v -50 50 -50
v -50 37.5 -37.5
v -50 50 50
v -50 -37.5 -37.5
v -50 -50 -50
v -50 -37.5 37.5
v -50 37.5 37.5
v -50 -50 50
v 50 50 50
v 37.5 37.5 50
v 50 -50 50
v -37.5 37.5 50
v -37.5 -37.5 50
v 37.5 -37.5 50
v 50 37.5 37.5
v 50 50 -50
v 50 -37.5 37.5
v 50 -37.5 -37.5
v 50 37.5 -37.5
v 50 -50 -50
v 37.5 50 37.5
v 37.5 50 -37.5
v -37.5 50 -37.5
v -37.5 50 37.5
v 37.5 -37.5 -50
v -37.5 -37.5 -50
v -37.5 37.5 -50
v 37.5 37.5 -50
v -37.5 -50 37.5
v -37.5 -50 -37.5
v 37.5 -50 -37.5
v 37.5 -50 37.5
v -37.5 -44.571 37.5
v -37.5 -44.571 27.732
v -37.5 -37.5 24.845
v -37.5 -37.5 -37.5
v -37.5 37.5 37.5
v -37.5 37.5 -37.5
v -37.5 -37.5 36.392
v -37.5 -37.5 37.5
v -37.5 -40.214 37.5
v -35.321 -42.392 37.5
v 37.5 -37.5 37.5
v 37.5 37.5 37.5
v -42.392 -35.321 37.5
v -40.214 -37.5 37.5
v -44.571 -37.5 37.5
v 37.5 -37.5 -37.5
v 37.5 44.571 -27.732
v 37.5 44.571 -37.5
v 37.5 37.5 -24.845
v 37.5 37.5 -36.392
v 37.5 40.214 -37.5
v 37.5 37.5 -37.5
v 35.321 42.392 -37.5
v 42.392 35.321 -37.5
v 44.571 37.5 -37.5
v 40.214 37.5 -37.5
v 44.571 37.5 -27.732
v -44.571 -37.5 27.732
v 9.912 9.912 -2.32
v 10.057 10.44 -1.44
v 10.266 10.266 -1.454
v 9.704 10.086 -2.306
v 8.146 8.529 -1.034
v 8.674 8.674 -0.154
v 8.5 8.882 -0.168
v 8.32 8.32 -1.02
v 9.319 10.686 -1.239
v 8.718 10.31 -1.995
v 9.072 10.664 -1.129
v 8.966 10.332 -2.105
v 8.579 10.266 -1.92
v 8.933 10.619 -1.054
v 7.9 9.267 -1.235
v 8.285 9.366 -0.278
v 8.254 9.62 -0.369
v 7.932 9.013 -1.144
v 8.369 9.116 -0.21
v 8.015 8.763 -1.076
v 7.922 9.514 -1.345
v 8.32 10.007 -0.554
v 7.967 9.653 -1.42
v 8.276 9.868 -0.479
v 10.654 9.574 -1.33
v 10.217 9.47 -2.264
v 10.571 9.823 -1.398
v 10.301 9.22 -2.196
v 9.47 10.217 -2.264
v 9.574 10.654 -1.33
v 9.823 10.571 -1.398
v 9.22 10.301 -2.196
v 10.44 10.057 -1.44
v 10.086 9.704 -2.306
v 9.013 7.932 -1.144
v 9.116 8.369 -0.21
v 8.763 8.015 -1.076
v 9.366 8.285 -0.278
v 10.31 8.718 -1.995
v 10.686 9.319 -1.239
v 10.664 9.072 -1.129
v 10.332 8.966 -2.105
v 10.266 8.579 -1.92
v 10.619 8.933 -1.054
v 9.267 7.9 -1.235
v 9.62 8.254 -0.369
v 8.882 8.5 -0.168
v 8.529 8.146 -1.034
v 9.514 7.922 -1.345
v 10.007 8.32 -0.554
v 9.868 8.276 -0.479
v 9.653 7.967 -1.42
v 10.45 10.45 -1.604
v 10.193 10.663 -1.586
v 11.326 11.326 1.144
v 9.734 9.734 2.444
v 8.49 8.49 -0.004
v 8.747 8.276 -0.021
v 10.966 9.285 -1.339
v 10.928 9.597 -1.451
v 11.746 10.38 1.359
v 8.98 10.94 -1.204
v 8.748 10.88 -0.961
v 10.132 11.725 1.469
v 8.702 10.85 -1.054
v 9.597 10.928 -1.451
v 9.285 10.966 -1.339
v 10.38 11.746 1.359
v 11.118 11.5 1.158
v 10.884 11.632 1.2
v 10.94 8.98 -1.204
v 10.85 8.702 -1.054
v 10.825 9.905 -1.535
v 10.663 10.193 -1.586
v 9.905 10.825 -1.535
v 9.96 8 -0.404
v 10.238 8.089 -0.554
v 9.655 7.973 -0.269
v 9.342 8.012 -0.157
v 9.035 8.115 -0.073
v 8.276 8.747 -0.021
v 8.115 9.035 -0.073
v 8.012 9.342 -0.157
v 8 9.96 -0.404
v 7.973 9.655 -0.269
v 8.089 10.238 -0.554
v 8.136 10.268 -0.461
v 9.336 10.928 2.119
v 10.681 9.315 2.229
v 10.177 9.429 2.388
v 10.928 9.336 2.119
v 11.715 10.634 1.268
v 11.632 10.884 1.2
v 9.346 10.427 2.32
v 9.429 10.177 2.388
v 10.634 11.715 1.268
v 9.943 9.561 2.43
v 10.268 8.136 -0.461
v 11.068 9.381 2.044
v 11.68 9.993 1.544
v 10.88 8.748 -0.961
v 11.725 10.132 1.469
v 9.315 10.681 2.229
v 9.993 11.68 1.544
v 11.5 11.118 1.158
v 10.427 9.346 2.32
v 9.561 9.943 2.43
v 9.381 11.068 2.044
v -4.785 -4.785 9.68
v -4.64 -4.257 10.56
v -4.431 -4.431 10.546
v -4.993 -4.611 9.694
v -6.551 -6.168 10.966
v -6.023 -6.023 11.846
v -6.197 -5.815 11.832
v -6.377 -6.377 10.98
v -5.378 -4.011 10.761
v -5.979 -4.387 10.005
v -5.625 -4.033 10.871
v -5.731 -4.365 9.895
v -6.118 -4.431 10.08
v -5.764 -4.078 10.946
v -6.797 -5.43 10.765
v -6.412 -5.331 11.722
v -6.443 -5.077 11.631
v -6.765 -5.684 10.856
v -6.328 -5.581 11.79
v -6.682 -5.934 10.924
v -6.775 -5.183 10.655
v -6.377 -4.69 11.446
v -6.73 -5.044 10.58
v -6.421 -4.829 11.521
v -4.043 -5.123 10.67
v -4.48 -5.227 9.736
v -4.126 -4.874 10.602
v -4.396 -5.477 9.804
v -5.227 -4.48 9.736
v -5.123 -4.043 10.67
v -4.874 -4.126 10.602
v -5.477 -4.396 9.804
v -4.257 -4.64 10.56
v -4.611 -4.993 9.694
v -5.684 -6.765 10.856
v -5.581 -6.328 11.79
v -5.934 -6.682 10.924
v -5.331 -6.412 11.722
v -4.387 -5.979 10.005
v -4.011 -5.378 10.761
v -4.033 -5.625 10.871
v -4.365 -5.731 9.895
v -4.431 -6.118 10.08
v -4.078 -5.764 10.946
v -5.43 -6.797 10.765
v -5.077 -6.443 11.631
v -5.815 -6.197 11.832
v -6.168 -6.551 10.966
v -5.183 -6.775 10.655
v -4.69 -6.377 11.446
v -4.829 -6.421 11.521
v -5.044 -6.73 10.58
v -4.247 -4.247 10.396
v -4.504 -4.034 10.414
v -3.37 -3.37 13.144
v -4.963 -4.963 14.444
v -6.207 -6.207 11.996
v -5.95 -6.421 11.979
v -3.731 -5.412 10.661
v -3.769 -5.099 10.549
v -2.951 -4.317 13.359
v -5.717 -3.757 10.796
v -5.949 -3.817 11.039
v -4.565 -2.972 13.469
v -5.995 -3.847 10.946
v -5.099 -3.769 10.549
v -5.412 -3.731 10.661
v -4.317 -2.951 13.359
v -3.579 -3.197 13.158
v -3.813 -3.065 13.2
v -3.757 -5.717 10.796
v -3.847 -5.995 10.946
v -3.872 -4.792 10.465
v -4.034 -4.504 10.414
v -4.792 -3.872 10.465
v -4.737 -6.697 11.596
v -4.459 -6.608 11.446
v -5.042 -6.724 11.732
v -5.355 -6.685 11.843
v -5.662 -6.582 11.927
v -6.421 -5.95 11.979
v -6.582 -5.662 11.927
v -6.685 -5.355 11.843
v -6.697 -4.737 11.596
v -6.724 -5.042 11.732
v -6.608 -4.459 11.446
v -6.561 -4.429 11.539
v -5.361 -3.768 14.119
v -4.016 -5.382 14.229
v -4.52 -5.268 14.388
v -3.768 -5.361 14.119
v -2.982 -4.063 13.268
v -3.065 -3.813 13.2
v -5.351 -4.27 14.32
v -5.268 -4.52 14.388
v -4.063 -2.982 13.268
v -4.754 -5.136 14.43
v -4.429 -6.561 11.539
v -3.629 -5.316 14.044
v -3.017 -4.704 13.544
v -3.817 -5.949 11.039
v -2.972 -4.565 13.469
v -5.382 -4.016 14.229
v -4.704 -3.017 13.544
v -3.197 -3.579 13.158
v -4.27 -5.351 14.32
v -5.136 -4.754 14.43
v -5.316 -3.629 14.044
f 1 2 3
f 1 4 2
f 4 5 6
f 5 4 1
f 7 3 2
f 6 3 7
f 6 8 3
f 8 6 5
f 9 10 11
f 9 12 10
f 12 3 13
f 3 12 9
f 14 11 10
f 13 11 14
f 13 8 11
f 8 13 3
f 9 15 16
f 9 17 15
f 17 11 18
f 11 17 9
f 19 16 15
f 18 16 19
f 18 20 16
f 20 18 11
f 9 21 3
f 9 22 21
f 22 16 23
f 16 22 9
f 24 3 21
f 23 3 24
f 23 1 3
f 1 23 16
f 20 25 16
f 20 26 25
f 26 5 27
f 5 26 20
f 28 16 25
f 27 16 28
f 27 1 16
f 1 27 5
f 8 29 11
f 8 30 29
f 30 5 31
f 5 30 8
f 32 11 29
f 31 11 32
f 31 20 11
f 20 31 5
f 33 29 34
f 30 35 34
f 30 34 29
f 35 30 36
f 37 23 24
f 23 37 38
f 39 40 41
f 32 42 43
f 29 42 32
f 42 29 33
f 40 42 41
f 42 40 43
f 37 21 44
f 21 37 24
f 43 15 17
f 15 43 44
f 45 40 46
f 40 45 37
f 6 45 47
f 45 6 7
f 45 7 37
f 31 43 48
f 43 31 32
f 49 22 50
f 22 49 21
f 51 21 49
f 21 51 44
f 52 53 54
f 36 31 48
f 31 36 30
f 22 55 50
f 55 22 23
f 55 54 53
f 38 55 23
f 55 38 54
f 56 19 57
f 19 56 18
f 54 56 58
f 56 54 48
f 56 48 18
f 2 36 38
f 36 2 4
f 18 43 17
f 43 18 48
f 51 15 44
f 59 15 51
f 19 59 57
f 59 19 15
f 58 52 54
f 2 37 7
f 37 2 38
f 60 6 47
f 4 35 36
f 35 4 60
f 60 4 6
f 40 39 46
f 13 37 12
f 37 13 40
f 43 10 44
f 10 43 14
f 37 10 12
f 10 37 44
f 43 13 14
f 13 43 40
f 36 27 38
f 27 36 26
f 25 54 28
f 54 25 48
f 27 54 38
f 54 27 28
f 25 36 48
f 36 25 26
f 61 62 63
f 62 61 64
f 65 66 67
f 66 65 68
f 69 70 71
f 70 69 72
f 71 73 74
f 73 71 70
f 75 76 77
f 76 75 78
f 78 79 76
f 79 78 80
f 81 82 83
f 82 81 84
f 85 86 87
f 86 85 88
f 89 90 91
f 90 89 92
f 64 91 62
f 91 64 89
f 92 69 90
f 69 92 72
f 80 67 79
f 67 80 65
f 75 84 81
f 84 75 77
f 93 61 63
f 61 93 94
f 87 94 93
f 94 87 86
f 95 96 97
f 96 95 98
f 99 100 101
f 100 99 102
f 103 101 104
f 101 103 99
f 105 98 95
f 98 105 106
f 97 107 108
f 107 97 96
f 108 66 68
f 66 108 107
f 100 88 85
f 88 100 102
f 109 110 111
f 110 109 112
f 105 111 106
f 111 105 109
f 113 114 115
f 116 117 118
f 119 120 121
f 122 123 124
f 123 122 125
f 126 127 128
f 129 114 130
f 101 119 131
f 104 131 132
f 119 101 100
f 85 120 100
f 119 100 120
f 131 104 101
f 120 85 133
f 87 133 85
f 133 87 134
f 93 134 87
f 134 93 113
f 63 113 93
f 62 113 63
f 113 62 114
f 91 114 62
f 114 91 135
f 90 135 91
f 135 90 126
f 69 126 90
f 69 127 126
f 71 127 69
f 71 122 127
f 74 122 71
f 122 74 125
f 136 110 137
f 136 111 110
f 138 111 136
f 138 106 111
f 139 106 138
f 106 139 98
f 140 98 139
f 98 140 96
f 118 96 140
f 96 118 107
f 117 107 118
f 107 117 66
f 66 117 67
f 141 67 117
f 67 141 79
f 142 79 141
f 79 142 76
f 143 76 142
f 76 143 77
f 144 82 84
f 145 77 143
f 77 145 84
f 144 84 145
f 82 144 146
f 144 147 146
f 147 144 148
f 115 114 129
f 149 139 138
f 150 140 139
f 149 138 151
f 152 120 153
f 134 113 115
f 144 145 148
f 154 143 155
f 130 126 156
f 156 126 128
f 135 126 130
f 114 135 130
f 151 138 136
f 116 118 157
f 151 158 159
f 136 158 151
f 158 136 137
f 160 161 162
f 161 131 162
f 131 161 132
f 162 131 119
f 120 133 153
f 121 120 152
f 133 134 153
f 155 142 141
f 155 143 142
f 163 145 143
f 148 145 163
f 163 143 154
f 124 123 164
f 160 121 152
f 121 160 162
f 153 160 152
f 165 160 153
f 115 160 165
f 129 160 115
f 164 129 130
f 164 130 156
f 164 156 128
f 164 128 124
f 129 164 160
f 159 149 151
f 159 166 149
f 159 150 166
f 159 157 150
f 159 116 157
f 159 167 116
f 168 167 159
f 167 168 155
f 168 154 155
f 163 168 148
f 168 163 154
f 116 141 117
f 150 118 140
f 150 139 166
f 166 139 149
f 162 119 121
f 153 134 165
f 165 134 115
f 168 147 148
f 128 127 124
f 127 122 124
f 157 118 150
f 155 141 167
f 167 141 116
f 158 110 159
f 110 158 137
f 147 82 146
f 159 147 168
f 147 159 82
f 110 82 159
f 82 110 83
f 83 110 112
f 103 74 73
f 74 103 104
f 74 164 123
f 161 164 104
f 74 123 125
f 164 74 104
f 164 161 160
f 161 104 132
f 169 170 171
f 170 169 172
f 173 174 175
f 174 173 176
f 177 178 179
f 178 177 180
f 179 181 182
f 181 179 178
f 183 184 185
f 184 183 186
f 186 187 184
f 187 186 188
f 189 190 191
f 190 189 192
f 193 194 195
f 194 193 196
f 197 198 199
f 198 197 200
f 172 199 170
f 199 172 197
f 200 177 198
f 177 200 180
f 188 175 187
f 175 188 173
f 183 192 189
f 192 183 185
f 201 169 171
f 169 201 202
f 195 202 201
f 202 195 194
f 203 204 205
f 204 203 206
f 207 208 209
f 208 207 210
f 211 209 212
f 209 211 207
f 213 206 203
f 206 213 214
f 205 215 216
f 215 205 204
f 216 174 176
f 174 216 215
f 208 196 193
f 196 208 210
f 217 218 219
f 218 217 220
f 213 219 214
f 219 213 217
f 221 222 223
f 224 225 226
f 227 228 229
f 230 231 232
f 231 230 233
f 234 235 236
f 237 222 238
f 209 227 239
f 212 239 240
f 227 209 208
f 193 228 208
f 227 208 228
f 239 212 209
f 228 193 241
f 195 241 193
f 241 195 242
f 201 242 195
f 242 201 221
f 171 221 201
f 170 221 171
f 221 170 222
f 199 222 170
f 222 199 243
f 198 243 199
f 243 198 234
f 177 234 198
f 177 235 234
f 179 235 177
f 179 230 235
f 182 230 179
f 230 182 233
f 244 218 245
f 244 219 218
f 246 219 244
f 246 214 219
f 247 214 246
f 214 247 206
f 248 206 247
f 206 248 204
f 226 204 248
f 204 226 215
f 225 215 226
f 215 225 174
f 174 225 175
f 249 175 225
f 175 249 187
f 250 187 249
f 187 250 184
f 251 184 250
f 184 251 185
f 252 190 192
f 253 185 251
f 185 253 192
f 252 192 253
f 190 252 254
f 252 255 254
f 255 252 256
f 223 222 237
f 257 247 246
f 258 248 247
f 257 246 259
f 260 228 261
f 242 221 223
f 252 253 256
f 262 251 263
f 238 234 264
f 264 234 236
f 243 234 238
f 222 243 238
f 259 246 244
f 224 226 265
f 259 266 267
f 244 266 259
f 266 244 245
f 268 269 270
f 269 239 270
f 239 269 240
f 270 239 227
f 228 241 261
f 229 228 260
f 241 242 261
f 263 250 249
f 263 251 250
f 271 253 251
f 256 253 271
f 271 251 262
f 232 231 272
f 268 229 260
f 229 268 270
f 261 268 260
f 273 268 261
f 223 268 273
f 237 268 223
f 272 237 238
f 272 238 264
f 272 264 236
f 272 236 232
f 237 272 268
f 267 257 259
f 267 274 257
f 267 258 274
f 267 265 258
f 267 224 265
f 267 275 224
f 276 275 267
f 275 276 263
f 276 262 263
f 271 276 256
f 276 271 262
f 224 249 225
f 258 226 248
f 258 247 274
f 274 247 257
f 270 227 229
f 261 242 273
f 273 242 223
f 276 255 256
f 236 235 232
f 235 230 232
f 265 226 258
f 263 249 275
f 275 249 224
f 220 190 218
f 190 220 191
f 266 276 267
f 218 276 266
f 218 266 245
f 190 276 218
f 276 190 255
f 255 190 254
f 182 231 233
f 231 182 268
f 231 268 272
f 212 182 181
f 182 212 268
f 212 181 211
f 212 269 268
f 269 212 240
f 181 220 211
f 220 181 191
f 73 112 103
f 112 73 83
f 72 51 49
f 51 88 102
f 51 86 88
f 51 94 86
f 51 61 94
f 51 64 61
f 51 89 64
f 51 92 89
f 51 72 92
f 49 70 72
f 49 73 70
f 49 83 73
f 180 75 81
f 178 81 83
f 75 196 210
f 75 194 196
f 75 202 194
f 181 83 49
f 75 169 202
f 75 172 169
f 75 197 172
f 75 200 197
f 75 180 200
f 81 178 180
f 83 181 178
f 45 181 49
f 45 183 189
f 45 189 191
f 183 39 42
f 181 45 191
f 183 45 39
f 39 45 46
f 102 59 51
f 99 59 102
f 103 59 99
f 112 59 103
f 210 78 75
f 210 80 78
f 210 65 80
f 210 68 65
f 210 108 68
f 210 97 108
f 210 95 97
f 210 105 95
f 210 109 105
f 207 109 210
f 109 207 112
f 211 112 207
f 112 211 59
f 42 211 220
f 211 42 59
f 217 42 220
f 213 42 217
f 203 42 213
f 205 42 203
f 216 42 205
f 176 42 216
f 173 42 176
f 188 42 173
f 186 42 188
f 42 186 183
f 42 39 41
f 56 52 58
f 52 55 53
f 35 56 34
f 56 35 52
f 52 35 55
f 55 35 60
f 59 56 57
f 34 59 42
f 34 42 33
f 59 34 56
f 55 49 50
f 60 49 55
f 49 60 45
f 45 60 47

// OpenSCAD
$fn = 30;
r_hole = 1.3;
r_snap = 1.6;
d_hole = 24;

difference() {
    cube(100, center=true);
    translate([0, -25, 0]) {
        cube(75, center=true);
    }
        translate([0, 25, 0]) {
        cube(75, center=true);
    }
    translate([25, 0, 0]) {
        cube(75, center=true);
    }
    translate([-25, 0, 0]) {
        cube(75, center=true);
    }
    translate([0, 0, 25]) {
        cube(75, center=true);
    }
    translate([0, 0, -25]) {
        cube(75, center=true);
    }
}

module clamp() {
    difference() {
        union() {
            cylinder(5, r_hole, r_hole, center=true);
            translate([0, 0, 1]) {
                cylinder(3, r_snap, r_hole);
            }
        }
        translate([0, 0, 3]) {
            scale([1, 5, 8]) {
                cube(1.0, center=true);
            }
        }
    }
}

intersection() {
    union() {
        rotate([0, 30, 45]) {
            translate([d_hole/2,0,5]) {
                clamp();
            }
            translate([-d_hole/2,0,5]) {
                clamp();
            }
            scale([250, 10, 10]) {
                cube(1, center=true);
            }
        }
    }
    cube(100, center=true);
}
